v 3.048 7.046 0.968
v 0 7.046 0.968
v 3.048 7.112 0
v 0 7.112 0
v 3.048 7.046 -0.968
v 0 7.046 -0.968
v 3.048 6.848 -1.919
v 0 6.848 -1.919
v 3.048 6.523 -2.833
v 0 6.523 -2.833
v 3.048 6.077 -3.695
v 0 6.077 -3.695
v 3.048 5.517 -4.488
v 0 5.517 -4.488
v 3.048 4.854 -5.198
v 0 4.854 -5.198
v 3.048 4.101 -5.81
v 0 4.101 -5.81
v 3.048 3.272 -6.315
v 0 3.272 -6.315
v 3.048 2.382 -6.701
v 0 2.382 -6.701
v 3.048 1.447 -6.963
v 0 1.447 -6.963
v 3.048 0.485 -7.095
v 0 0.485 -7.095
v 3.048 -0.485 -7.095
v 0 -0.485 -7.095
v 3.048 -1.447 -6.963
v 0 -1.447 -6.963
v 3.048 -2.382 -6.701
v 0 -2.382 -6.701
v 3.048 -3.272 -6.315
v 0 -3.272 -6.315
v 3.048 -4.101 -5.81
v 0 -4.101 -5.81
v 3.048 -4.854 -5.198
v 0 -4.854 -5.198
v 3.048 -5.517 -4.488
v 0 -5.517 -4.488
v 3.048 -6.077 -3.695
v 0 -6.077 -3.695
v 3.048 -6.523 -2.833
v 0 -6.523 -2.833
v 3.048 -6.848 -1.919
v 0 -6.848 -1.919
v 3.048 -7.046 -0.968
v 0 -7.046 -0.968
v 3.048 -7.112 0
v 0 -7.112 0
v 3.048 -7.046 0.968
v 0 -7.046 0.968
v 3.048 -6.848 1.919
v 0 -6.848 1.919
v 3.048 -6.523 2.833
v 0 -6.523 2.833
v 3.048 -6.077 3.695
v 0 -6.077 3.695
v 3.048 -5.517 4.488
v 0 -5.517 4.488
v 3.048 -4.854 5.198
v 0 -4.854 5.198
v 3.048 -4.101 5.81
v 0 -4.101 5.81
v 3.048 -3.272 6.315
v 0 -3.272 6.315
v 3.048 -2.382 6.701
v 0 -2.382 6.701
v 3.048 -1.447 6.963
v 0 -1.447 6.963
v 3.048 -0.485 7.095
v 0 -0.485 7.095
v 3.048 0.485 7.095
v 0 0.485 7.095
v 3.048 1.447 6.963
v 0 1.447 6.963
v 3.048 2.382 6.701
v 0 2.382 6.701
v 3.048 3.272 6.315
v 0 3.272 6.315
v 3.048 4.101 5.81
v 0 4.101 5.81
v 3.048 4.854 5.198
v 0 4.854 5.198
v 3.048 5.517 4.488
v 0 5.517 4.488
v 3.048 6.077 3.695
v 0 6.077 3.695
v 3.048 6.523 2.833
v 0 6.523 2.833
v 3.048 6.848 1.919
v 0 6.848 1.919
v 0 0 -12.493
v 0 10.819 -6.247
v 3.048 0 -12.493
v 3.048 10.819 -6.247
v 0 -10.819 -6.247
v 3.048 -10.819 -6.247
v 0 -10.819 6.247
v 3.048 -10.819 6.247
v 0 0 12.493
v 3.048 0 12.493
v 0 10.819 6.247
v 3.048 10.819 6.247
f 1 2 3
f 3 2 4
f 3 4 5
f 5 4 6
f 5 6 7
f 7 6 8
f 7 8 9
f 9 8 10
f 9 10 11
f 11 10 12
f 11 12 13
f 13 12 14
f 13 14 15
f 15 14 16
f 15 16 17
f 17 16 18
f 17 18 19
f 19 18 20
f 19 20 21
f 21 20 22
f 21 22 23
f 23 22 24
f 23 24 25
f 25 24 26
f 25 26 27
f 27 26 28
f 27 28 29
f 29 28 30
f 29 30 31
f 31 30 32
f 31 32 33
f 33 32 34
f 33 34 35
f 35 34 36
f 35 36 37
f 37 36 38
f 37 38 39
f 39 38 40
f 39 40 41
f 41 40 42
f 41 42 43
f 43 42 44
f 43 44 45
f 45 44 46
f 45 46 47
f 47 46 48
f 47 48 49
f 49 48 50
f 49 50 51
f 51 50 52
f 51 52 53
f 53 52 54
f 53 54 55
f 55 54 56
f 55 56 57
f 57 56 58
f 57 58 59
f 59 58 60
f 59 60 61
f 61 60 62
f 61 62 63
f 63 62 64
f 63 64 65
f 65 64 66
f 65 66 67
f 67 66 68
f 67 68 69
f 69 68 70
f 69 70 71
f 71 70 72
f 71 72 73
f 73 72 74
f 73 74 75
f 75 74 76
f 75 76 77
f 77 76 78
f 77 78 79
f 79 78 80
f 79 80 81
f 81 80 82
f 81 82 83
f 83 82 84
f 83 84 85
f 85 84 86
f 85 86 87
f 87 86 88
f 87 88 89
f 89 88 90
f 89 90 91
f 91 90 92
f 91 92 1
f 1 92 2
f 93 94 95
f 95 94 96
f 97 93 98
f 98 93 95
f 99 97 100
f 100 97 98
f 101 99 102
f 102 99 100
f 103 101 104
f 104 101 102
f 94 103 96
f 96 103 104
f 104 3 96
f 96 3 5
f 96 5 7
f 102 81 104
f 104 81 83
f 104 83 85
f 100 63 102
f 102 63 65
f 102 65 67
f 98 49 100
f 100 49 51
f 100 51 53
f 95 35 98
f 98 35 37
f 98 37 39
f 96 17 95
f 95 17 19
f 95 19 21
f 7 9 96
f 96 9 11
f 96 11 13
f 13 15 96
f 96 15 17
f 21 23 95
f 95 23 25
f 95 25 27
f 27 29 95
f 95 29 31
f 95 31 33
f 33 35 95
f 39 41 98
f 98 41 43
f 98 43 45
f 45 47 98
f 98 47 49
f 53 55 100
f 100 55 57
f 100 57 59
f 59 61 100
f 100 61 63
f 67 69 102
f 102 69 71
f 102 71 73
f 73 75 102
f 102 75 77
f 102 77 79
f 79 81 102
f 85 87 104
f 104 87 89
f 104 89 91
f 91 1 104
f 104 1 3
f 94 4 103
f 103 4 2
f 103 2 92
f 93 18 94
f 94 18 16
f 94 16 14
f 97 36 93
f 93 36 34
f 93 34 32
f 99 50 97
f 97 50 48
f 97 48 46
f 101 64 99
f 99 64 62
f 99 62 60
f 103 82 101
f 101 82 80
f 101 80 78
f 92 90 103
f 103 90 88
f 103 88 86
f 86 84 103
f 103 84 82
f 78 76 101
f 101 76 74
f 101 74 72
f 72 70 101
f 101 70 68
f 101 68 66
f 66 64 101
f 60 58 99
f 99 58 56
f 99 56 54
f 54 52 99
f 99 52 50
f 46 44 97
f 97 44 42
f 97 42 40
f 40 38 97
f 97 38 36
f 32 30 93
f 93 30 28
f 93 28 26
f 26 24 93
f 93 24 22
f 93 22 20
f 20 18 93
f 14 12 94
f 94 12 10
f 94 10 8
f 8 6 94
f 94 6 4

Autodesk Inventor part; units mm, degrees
ref_plane "YZ Plane" through (0, 0, 0) normal (1, 0, 0) x (0, 1, 0)
ref_plane "XZ Plane" through (0, 0, 0) normal (0, 1, 0) x (-1, 0, 0)
ref_plane "XY Plane" through (0, 0, 0) normal (0, 0, 1) x (1, 0, 0)
sketch "Sketch1" plane through (0, 0, 0) normal (1, 0, 0) x (0, 1, 0)
  circle A0 centre (0, 0) radius 7.112
  circle A1 centre (0, 0) radius 12.7
  line L0 (10.8193, 6.6508) -> (10.8193, -6.6508)
  line L1 (-0.3501, 12.6952) -> (11.1694, 6.0444)
  line L2 (-11.1694, 6.0444) -> (0.3501, 12.6952)
  line L3 (-10.8193, -6.6508) -> (-10.8193, 6.6508)
  line L4 (0.3501, -12.6952) -> (-11.1694, -6.0444)
  line L5 (11.1694, -6.0444) -> (-0.3501, -12.6952)
  point P0 (0, -12.4931)
  point P1 (10.8193, -6.2465)
  point P2 (10.8193, 6.2465)
  point P3 (0, 12.4931)
  point P4 (-10.8193, 6.2465)
  point P5 (-10.8193, -6.2465)
  dimension "d0" = 14.224
  dimension "d1" = 25.4
  dimension "d6" = 360
extrude "Extrusion2" add sketch "Sketch1" along normal blind 3.048 contours L0 L5 L4 L3 L2 L1
properties part number "CH-2(Gearbox_Output_Spacer)"
